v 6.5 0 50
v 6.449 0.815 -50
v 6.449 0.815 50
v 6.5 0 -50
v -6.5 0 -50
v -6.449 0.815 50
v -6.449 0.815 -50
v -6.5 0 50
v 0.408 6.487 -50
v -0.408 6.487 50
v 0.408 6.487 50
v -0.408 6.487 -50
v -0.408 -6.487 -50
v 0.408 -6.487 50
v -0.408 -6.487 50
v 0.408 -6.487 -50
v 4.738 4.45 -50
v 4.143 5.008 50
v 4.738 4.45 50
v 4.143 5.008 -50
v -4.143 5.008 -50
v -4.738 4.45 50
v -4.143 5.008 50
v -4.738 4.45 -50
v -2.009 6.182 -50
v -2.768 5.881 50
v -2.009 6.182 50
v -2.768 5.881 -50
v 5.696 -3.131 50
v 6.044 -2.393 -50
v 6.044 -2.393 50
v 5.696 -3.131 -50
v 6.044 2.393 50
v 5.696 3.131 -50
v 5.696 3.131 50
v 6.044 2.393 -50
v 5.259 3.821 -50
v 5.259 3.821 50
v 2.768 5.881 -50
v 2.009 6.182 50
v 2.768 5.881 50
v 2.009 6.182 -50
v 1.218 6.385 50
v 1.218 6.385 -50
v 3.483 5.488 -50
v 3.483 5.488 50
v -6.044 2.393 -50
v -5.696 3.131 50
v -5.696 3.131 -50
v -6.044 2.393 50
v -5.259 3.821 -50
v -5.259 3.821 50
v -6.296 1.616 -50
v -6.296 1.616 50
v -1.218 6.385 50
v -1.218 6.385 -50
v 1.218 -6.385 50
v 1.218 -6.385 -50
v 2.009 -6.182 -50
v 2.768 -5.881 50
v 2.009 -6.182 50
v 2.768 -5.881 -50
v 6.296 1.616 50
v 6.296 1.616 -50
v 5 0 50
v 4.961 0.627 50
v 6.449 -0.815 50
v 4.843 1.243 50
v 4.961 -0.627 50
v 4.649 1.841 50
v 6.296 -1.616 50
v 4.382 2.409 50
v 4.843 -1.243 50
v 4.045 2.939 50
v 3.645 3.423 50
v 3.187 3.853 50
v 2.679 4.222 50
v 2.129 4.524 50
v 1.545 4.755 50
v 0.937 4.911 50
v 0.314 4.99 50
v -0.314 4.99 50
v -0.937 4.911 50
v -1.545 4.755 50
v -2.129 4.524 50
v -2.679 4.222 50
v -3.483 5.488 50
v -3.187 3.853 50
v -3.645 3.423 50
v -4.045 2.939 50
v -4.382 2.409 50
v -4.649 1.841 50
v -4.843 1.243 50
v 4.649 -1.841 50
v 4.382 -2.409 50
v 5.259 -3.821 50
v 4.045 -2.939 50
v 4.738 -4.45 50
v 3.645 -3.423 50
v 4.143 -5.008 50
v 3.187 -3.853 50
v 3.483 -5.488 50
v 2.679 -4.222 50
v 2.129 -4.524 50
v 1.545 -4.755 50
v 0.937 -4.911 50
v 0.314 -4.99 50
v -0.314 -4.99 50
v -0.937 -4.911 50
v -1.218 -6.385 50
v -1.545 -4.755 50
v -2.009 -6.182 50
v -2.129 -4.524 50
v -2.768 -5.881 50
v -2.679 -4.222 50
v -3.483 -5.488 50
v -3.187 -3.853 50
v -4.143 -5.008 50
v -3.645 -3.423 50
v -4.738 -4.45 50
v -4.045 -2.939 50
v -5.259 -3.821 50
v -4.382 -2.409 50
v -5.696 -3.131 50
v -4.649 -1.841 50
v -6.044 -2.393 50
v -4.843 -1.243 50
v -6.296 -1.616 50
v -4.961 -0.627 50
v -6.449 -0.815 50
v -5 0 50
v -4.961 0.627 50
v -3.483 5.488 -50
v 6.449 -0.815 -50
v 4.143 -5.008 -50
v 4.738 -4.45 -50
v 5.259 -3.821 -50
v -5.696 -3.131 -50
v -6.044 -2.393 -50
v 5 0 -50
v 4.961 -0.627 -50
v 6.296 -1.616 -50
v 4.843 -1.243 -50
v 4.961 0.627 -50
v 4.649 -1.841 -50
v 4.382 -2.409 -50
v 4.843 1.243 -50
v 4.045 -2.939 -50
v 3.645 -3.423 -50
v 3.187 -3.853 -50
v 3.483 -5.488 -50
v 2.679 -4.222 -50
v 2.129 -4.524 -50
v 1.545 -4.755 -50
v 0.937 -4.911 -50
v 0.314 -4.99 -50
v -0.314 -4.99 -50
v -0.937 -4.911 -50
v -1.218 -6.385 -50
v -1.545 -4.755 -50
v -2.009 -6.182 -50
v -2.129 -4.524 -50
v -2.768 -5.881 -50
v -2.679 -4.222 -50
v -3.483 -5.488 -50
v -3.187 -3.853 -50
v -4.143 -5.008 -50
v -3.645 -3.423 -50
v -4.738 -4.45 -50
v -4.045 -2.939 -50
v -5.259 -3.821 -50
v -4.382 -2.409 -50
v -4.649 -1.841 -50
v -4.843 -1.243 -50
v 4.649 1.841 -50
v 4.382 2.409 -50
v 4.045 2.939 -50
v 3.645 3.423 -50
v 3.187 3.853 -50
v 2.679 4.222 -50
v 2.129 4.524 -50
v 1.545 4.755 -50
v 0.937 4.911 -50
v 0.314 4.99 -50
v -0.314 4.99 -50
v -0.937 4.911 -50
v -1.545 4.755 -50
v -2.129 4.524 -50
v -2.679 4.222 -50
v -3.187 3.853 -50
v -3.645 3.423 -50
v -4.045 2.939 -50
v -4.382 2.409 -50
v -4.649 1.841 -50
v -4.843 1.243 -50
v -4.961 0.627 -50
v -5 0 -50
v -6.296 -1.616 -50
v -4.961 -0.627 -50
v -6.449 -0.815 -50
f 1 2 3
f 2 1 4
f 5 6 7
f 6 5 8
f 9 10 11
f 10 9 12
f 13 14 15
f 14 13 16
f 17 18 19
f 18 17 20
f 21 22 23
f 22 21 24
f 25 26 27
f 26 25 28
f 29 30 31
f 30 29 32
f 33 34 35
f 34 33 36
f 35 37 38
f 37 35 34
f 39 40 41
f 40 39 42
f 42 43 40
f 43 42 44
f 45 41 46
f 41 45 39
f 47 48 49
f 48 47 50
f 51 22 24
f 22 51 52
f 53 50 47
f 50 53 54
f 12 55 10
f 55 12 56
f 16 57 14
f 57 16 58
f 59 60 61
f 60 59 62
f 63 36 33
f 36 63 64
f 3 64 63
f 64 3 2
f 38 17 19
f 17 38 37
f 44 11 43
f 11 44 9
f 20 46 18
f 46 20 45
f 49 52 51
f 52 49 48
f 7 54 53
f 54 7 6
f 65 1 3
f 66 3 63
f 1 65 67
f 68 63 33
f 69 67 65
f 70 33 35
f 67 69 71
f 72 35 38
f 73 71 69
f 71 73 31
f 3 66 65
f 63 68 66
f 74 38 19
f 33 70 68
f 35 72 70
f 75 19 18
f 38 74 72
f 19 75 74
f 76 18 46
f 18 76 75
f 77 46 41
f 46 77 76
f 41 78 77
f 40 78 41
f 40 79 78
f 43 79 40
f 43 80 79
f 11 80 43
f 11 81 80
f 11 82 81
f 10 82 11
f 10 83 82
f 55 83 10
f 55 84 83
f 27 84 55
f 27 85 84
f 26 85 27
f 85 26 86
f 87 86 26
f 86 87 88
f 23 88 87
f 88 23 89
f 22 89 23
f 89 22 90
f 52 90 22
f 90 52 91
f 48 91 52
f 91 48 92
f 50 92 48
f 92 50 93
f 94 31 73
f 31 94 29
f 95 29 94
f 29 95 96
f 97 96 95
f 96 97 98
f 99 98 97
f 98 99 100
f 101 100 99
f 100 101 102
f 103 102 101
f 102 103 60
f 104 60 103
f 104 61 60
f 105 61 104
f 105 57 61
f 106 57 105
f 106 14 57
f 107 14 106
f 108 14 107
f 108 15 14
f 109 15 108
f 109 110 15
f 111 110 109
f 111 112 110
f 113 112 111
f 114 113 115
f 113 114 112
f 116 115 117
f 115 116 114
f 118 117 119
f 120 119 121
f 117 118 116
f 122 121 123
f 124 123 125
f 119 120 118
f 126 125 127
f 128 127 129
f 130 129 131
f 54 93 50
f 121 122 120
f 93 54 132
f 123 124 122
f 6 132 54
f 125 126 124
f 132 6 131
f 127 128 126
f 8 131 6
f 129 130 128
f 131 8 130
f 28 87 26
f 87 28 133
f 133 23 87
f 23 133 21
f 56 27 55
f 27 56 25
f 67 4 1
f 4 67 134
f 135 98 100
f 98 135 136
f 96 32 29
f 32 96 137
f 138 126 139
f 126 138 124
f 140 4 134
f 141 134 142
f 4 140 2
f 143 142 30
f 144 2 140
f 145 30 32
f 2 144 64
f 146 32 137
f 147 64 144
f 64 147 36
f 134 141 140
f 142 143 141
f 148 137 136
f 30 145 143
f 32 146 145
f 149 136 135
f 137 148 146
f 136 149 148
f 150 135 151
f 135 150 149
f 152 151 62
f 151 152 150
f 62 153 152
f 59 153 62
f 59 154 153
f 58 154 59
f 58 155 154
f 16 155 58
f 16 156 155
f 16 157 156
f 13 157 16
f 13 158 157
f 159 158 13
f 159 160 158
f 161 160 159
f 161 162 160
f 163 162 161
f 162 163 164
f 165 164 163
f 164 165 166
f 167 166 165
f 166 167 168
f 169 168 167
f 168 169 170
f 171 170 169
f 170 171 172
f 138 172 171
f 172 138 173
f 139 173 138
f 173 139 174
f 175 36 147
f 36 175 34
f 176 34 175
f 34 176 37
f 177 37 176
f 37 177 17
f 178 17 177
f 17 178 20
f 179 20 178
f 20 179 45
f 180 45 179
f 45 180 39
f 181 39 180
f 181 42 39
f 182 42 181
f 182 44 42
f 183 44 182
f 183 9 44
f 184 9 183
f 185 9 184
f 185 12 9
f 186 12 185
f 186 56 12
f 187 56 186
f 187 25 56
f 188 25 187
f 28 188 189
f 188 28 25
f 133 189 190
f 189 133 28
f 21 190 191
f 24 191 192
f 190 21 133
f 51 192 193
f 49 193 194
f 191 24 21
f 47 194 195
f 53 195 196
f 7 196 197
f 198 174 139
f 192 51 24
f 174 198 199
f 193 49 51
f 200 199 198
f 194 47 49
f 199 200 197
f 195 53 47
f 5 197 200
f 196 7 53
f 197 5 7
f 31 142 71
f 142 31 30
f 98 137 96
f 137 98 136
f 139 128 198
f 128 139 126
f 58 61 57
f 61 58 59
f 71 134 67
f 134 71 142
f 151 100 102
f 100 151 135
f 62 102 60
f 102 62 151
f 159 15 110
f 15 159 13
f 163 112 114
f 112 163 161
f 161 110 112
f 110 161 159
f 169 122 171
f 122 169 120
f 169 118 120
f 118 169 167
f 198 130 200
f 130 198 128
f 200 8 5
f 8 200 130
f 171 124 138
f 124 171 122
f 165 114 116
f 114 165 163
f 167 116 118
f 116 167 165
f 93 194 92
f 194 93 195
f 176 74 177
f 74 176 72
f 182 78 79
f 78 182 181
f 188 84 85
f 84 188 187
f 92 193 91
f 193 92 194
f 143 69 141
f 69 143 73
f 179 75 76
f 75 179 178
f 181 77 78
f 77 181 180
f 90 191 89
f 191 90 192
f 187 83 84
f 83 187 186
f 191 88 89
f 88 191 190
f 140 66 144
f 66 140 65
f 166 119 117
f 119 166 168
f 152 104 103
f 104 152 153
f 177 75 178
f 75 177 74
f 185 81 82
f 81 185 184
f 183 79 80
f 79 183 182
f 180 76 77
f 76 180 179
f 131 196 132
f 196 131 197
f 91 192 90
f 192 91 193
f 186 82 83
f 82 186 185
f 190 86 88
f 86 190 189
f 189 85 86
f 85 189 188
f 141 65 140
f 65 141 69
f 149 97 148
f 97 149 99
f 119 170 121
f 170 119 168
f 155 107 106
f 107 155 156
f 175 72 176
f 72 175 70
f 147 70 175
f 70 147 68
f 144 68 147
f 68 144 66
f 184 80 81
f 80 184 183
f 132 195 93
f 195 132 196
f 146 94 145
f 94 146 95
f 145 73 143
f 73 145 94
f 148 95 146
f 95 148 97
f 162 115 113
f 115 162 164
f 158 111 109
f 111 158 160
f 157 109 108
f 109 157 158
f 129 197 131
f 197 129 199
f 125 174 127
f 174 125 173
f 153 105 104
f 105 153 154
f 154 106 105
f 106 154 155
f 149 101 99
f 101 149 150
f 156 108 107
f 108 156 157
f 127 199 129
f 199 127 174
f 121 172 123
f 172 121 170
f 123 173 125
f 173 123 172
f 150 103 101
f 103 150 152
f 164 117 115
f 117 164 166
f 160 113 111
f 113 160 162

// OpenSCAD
$fn = 50;


difference() {
	union() {
		translate(v = [0, 0, -50.0000000000]) {
			cylinder(h = 100, r = 6.5000000000);
		}
	}
	union() {
		translate(v = [0, 0, -100.0000000000]) {
			cylinder(h = 200, r = 5.0000000000);
		}
	}
}
